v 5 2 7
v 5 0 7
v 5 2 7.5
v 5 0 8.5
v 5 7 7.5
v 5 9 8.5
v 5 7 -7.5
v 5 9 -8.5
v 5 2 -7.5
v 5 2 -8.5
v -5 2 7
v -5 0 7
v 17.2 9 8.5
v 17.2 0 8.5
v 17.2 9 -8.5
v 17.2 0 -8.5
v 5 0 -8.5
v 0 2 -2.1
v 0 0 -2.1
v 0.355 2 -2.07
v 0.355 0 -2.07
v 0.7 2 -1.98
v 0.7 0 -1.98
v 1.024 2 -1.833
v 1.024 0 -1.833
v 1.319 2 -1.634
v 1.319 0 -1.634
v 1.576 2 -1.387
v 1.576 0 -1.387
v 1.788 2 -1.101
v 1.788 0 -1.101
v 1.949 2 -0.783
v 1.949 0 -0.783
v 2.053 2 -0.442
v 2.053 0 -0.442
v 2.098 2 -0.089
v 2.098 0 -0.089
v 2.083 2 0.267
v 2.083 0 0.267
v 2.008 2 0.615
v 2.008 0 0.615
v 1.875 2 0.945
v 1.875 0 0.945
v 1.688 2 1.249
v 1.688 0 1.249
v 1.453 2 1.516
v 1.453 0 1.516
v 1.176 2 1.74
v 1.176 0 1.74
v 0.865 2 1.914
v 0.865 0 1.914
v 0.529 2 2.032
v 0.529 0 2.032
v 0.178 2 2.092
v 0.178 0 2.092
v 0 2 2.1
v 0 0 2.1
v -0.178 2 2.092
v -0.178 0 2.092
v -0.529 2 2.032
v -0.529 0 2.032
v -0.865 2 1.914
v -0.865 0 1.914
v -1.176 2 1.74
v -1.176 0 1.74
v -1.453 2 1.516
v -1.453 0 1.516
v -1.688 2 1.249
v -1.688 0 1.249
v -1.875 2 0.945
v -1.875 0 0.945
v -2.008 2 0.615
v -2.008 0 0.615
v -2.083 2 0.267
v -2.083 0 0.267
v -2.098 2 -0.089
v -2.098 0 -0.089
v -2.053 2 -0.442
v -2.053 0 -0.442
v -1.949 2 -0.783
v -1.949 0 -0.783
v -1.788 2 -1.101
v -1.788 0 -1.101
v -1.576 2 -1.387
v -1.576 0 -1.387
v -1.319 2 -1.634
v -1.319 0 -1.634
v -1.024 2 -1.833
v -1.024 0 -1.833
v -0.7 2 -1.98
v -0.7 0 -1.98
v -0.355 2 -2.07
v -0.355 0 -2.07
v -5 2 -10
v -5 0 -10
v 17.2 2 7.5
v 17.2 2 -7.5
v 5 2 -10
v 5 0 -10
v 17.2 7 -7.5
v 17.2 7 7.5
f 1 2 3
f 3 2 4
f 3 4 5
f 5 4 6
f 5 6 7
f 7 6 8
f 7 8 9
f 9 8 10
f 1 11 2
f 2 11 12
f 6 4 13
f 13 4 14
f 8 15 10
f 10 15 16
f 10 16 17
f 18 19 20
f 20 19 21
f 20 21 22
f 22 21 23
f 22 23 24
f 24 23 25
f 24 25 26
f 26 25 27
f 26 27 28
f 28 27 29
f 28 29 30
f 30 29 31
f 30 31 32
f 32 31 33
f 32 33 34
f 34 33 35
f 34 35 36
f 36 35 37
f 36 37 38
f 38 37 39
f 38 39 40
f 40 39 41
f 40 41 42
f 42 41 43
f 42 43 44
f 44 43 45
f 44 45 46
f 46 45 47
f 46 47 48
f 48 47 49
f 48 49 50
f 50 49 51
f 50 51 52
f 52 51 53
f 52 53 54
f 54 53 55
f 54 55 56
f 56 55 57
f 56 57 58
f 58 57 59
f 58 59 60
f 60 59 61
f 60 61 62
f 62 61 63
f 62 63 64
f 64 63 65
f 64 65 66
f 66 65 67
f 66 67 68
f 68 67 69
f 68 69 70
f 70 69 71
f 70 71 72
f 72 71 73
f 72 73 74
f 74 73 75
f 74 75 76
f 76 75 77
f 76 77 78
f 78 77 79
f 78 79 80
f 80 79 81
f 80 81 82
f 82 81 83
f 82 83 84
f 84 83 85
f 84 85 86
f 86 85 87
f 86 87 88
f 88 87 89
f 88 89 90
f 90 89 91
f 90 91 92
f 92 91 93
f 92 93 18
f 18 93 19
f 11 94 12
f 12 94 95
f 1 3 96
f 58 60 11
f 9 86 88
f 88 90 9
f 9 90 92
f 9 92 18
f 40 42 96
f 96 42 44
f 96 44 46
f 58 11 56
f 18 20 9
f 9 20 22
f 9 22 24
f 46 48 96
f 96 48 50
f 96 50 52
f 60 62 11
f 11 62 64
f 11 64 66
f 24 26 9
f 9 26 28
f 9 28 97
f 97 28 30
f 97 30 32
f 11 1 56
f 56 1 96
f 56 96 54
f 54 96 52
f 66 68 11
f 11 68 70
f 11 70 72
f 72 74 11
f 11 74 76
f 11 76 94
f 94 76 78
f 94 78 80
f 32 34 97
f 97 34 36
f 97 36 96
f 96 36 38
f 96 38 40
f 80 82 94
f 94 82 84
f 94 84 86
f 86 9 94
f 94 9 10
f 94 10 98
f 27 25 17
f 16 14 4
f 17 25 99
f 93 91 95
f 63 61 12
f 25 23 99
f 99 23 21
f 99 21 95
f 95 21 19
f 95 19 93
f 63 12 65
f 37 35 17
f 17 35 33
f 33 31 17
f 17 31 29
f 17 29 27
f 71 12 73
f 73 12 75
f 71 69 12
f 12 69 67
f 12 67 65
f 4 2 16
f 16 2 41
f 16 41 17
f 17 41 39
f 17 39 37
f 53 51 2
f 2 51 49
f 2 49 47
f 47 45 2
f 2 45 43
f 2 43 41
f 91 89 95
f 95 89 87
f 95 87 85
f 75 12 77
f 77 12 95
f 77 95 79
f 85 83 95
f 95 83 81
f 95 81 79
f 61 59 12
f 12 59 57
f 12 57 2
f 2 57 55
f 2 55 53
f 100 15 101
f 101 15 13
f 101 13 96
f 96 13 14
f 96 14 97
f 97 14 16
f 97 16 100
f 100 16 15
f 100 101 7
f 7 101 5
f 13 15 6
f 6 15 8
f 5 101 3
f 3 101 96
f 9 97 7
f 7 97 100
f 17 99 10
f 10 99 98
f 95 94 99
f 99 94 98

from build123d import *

# Parameters (mm, degrees)
SKETCH1_W           = 10
SKETCH1_H           = 14
SKETCH1_R           = 2.1
BOSS_EXTRUDE1_DEPTH = 2
SKETCH2_W           = 1.8
SKETCH2_H           = 13.4
BOSS_EXTRUDE2_DEPTH = 5
SKETCH3_W           = 1.8
SKETCH3_H           = 1.8
CUT_EXTRUDE1_DEPTH  = 9
SKETCH5_W           = 12.2
SKETCH5_H           = 17
BOSS_EXTRUDE4_DEPTH = 2
SKETCH6_W           = 14
SKETCH6_H           = 5
SKETCH6_W_2         = 0.5
CUT_EXTRUDE2_DEPTH  = 14
SKETCH7_W           = 10
SKETCH7_H           = 2
BOSS_EXTRUDE5_DEPTH = 3


with BuildPart() as part:
    # Sketch1 → Boss-Extrude1 (new body)
    with BuildSketch(Plane(origin=(0, 0, 0), x_dir=(1, 0, 0), z_dir=(0, 1, 0))):
        Rectangle(SKETCH1_W, SKETCH1_H)
        Circle(SKETCH1_R, mode=Mode.SUBTRACT)
        Polygon((5, 7), (5, -7), (5, -8.5), (19, -8.5), (19, 8.5), (5, 8.5), align=None)
    extrude(amount=BOSS_EXTRUDE1_DEPTH)

    # Sketch2 → Boss-Extrude2 (add)
    with BuildSketch(Plane(origin=(0, 2, 0), x_dir=(1, 0, 0), z_dir=(0, 1, 0))):
        Polygon((17.2, 6.7), (19, 6.7), (19, 8.5), (5, 8.5), (5, 7), (5, 6.7), align=None)
        with Locations((18.1, 0)):
            Rectangle(SKETCH2_W, SKETCH2_H)
        Polygon((5, -7), (5, -8.5), (19, -8.5), (19, -6.7), (17.2, -6.7), (5, -6.7), align=None)
    extrude(amount=BOSS_EXTRUDE2_DEPTH)

    # Sketch3 → Cut-Extrude1 (cut)
    with BuildSketch(Plane(origin=(0, 7, 0), x_dir=(1, 0, 0), z_dir=(0, 1, 0))):
        Polygon((19, -6.7), (19, 8.5), (17.2, 8.5), (17.2, 6.7), (17.2, -6.7), align=None)
        with Locations((18.1, -7.6)):
            Rectangle(SKETCH3_W, SKETCH3_H)
    extrude(amount=-CUT_EXTRUDE1_DEPTH, mode=Mode.SUBTRACT)

    # Sketch5 → Boss-Extrude4 (add)
    with BuildSketch(Plane(origin=(0, 7, 0), x_dir=(1, 0, 0), z_dir=(0, 1, 0))):
        with Locations((11.1, 0)):
            Rectangle(SKETCH5_W, SKETCH5_H)
    extrude(amount=BOSS_EXTRUDE4_DEPTH)

    # Sketch6 → Cut-Extrude2 (cut)
    with BuildSketch(Plane.ZY.offset(-5)):
        with Locations((0, 4.5)):
            Rectangle(SKETCH6_W, SKETCH6_H)
        with Locations((-7.25, 4.5)):
            Rectangle(SKETCH6_W_2, SKETCH6_H)
        with Locations((7.25, 4.5)):
            Rectangle(SKETCH6_W_2, SKETCH6_H)
    extrude(amount=-CUT_EXTRUDE2_DEPTH, mode=Mode.SUBTRACT)

    # Sketch7 → Boss-Extrude5 (add)
    with BuildSketch(Plane(origin=(0, 0, -7), x_dir=(-1, 0, 0), z_dir=(0, 0, -1))):
        with Locations((0, 1)):
            Rectangle(SKETCH7_W, SKETCH7_H)
    extrude(amount=BOSS_EXTRUDE5_DEPTH)


solid = part.part
